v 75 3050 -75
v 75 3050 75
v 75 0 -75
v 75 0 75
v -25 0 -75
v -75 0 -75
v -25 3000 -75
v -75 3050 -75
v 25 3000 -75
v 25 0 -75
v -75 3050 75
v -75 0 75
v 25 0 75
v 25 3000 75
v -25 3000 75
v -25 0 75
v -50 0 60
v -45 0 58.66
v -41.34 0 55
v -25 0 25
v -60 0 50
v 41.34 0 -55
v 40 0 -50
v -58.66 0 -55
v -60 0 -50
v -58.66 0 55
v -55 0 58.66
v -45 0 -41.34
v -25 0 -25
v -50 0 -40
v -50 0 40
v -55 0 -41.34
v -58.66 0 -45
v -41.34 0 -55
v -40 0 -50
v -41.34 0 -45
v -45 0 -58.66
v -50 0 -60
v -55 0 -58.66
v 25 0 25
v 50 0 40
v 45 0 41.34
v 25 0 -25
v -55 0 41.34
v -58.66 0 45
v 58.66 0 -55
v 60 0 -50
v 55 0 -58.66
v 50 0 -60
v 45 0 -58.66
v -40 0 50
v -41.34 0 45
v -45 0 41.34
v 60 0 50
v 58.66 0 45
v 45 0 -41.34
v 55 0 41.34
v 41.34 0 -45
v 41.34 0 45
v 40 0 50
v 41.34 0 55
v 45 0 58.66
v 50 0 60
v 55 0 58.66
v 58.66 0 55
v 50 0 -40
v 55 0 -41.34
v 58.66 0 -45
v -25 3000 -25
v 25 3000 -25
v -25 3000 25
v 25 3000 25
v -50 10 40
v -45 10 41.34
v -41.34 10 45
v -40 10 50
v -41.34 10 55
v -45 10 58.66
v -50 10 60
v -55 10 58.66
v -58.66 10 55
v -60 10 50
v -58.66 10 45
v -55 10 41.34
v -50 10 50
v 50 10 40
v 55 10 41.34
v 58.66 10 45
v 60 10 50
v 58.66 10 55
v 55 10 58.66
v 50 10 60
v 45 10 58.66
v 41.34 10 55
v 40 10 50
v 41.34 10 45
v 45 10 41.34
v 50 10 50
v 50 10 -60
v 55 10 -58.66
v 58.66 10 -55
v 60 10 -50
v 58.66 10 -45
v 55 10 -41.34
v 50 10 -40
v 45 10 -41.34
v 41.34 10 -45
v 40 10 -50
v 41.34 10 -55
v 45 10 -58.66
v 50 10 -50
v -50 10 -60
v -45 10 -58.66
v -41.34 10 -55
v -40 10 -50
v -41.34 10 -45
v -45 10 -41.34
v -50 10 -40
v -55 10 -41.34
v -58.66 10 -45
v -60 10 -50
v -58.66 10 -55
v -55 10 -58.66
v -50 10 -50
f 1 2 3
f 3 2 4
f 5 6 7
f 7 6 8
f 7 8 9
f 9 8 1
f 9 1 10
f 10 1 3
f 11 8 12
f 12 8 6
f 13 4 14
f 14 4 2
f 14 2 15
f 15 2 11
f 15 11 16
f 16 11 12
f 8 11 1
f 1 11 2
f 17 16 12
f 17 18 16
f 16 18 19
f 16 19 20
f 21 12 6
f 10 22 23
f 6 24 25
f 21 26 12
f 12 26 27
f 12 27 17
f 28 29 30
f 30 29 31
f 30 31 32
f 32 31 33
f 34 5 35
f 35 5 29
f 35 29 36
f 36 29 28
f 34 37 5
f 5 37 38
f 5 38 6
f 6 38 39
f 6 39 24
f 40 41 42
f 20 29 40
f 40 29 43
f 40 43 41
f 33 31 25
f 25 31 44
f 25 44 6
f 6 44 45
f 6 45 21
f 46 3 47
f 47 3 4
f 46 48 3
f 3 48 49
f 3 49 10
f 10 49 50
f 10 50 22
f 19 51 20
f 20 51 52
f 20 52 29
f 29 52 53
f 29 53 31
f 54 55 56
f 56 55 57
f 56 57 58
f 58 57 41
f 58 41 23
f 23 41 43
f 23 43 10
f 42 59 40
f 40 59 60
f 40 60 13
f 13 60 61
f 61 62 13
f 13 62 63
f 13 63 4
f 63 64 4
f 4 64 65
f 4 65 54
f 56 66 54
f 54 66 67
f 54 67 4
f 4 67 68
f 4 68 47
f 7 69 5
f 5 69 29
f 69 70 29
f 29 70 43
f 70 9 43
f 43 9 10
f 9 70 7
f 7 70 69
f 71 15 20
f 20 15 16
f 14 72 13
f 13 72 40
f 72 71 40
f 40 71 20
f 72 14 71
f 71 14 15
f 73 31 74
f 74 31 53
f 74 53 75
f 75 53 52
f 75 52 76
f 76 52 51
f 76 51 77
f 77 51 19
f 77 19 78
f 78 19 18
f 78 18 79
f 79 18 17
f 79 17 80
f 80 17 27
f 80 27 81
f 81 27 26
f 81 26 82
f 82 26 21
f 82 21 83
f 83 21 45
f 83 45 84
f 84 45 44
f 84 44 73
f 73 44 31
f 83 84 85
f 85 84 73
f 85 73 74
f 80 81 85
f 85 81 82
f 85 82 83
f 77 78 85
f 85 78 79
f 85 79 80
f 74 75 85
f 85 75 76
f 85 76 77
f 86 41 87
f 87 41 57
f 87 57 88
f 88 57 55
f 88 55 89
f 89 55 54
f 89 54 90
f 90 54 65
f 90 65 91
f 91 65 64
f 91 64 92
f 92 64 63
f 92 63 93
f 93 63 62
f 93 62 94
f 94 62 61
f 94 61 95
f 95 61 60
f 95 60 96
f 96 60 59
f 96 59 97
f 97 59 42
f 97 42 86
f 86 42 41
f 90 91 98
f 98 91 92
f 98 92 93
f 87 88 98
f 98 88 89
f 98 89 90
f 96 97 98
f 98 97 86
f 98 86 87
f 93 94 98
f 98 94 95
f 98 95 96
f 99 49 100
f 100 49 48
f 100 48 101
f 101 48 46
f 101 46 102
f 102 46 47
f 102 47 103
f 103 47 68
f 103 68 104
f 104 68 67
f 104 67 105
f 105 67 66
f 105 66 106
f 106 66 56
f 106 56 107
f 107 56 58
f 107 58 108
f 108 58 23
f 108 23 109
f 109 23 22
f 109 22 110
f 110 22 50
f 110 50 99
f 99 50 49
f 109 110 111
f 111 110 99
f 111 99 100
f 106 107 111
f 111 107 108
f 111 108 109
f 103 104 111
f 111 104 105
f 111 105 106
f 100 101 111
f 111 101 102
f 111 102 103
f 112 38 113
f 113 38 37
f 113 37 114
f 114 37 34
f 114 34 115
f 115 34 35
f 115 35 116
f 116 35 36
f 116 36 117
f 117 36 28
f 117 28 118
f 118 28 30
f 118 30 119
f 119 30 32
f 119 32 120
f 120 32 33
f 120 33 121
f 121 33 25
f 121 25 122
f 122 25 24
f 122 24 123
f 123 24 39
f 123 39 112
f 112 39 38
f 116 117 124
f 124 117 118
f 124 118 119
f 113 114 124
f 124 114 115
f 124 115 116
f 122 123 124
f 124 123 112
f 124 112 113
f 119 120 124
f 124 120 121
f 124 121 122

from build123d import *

# Parameters (mm, degrees)
SKETCH1_W           = 150
SKETCH1_H           = 150
BOSS_EXTRUDE1_DEPTH = 3050
SKETCH2_W           = 50
SKETCH2_H           = 50
CUT_EXTRUDE1_DEPTH  = 3000
SKETCH3_R           = 10
CUT_EXTRUDE2_DEPTH  = 10


with BuildPart() as part:
    # Sketch1 → Boss-Extrude1 (new body)
    with BuildSketch(Plane(origin=(0, 0, 0), x_dir=(1, 0, 0), z_dir=(0, 1, 0))):
        Rectangle(SKETCH1_W, SKETCH1_H)
    extrude(amount=BOSS_EXTRUDE1_DEPTH)

    # Sketch2 → Cut-Extrude1 (cut)
    with BuildSketch(Plane.XZ):
        with Locations((0, 50)):
            Rectangle(SKETCH2_W, SKETCH2_H)
        with Locations((0, -50)):
            Rectangle(SKETCH2_W, SKETCH2_H)
    extrude(amount=-CUT_EXTRUDE1_DEPTH, mode=Mode.SUBTRACT)

    # Sketch3 → Cut-Extrude2 (cut)
    with BuildSketch(Plane.XZ):
        with Locations(Location((-50, 50, 0), (0, 0, 270))):
            Circle(SKETCH3_R)
        with Locations(Location((50, 50, 0), (0, 0, 90))):
            Circle(SKETCH3_R)
        with Locations(Location((50, -50, 0), (0, 0, 270))):
            Circle(SKETCH3_R)
        with Locations(Location((-50, -50, 0), (0, 0, 90))):
            Circle(SKETCH3_R)
    extrude(amount=-CUT_EXTRUDE2_DEPTH, mode=Mode.SUBTRACT)


solid = part.part
